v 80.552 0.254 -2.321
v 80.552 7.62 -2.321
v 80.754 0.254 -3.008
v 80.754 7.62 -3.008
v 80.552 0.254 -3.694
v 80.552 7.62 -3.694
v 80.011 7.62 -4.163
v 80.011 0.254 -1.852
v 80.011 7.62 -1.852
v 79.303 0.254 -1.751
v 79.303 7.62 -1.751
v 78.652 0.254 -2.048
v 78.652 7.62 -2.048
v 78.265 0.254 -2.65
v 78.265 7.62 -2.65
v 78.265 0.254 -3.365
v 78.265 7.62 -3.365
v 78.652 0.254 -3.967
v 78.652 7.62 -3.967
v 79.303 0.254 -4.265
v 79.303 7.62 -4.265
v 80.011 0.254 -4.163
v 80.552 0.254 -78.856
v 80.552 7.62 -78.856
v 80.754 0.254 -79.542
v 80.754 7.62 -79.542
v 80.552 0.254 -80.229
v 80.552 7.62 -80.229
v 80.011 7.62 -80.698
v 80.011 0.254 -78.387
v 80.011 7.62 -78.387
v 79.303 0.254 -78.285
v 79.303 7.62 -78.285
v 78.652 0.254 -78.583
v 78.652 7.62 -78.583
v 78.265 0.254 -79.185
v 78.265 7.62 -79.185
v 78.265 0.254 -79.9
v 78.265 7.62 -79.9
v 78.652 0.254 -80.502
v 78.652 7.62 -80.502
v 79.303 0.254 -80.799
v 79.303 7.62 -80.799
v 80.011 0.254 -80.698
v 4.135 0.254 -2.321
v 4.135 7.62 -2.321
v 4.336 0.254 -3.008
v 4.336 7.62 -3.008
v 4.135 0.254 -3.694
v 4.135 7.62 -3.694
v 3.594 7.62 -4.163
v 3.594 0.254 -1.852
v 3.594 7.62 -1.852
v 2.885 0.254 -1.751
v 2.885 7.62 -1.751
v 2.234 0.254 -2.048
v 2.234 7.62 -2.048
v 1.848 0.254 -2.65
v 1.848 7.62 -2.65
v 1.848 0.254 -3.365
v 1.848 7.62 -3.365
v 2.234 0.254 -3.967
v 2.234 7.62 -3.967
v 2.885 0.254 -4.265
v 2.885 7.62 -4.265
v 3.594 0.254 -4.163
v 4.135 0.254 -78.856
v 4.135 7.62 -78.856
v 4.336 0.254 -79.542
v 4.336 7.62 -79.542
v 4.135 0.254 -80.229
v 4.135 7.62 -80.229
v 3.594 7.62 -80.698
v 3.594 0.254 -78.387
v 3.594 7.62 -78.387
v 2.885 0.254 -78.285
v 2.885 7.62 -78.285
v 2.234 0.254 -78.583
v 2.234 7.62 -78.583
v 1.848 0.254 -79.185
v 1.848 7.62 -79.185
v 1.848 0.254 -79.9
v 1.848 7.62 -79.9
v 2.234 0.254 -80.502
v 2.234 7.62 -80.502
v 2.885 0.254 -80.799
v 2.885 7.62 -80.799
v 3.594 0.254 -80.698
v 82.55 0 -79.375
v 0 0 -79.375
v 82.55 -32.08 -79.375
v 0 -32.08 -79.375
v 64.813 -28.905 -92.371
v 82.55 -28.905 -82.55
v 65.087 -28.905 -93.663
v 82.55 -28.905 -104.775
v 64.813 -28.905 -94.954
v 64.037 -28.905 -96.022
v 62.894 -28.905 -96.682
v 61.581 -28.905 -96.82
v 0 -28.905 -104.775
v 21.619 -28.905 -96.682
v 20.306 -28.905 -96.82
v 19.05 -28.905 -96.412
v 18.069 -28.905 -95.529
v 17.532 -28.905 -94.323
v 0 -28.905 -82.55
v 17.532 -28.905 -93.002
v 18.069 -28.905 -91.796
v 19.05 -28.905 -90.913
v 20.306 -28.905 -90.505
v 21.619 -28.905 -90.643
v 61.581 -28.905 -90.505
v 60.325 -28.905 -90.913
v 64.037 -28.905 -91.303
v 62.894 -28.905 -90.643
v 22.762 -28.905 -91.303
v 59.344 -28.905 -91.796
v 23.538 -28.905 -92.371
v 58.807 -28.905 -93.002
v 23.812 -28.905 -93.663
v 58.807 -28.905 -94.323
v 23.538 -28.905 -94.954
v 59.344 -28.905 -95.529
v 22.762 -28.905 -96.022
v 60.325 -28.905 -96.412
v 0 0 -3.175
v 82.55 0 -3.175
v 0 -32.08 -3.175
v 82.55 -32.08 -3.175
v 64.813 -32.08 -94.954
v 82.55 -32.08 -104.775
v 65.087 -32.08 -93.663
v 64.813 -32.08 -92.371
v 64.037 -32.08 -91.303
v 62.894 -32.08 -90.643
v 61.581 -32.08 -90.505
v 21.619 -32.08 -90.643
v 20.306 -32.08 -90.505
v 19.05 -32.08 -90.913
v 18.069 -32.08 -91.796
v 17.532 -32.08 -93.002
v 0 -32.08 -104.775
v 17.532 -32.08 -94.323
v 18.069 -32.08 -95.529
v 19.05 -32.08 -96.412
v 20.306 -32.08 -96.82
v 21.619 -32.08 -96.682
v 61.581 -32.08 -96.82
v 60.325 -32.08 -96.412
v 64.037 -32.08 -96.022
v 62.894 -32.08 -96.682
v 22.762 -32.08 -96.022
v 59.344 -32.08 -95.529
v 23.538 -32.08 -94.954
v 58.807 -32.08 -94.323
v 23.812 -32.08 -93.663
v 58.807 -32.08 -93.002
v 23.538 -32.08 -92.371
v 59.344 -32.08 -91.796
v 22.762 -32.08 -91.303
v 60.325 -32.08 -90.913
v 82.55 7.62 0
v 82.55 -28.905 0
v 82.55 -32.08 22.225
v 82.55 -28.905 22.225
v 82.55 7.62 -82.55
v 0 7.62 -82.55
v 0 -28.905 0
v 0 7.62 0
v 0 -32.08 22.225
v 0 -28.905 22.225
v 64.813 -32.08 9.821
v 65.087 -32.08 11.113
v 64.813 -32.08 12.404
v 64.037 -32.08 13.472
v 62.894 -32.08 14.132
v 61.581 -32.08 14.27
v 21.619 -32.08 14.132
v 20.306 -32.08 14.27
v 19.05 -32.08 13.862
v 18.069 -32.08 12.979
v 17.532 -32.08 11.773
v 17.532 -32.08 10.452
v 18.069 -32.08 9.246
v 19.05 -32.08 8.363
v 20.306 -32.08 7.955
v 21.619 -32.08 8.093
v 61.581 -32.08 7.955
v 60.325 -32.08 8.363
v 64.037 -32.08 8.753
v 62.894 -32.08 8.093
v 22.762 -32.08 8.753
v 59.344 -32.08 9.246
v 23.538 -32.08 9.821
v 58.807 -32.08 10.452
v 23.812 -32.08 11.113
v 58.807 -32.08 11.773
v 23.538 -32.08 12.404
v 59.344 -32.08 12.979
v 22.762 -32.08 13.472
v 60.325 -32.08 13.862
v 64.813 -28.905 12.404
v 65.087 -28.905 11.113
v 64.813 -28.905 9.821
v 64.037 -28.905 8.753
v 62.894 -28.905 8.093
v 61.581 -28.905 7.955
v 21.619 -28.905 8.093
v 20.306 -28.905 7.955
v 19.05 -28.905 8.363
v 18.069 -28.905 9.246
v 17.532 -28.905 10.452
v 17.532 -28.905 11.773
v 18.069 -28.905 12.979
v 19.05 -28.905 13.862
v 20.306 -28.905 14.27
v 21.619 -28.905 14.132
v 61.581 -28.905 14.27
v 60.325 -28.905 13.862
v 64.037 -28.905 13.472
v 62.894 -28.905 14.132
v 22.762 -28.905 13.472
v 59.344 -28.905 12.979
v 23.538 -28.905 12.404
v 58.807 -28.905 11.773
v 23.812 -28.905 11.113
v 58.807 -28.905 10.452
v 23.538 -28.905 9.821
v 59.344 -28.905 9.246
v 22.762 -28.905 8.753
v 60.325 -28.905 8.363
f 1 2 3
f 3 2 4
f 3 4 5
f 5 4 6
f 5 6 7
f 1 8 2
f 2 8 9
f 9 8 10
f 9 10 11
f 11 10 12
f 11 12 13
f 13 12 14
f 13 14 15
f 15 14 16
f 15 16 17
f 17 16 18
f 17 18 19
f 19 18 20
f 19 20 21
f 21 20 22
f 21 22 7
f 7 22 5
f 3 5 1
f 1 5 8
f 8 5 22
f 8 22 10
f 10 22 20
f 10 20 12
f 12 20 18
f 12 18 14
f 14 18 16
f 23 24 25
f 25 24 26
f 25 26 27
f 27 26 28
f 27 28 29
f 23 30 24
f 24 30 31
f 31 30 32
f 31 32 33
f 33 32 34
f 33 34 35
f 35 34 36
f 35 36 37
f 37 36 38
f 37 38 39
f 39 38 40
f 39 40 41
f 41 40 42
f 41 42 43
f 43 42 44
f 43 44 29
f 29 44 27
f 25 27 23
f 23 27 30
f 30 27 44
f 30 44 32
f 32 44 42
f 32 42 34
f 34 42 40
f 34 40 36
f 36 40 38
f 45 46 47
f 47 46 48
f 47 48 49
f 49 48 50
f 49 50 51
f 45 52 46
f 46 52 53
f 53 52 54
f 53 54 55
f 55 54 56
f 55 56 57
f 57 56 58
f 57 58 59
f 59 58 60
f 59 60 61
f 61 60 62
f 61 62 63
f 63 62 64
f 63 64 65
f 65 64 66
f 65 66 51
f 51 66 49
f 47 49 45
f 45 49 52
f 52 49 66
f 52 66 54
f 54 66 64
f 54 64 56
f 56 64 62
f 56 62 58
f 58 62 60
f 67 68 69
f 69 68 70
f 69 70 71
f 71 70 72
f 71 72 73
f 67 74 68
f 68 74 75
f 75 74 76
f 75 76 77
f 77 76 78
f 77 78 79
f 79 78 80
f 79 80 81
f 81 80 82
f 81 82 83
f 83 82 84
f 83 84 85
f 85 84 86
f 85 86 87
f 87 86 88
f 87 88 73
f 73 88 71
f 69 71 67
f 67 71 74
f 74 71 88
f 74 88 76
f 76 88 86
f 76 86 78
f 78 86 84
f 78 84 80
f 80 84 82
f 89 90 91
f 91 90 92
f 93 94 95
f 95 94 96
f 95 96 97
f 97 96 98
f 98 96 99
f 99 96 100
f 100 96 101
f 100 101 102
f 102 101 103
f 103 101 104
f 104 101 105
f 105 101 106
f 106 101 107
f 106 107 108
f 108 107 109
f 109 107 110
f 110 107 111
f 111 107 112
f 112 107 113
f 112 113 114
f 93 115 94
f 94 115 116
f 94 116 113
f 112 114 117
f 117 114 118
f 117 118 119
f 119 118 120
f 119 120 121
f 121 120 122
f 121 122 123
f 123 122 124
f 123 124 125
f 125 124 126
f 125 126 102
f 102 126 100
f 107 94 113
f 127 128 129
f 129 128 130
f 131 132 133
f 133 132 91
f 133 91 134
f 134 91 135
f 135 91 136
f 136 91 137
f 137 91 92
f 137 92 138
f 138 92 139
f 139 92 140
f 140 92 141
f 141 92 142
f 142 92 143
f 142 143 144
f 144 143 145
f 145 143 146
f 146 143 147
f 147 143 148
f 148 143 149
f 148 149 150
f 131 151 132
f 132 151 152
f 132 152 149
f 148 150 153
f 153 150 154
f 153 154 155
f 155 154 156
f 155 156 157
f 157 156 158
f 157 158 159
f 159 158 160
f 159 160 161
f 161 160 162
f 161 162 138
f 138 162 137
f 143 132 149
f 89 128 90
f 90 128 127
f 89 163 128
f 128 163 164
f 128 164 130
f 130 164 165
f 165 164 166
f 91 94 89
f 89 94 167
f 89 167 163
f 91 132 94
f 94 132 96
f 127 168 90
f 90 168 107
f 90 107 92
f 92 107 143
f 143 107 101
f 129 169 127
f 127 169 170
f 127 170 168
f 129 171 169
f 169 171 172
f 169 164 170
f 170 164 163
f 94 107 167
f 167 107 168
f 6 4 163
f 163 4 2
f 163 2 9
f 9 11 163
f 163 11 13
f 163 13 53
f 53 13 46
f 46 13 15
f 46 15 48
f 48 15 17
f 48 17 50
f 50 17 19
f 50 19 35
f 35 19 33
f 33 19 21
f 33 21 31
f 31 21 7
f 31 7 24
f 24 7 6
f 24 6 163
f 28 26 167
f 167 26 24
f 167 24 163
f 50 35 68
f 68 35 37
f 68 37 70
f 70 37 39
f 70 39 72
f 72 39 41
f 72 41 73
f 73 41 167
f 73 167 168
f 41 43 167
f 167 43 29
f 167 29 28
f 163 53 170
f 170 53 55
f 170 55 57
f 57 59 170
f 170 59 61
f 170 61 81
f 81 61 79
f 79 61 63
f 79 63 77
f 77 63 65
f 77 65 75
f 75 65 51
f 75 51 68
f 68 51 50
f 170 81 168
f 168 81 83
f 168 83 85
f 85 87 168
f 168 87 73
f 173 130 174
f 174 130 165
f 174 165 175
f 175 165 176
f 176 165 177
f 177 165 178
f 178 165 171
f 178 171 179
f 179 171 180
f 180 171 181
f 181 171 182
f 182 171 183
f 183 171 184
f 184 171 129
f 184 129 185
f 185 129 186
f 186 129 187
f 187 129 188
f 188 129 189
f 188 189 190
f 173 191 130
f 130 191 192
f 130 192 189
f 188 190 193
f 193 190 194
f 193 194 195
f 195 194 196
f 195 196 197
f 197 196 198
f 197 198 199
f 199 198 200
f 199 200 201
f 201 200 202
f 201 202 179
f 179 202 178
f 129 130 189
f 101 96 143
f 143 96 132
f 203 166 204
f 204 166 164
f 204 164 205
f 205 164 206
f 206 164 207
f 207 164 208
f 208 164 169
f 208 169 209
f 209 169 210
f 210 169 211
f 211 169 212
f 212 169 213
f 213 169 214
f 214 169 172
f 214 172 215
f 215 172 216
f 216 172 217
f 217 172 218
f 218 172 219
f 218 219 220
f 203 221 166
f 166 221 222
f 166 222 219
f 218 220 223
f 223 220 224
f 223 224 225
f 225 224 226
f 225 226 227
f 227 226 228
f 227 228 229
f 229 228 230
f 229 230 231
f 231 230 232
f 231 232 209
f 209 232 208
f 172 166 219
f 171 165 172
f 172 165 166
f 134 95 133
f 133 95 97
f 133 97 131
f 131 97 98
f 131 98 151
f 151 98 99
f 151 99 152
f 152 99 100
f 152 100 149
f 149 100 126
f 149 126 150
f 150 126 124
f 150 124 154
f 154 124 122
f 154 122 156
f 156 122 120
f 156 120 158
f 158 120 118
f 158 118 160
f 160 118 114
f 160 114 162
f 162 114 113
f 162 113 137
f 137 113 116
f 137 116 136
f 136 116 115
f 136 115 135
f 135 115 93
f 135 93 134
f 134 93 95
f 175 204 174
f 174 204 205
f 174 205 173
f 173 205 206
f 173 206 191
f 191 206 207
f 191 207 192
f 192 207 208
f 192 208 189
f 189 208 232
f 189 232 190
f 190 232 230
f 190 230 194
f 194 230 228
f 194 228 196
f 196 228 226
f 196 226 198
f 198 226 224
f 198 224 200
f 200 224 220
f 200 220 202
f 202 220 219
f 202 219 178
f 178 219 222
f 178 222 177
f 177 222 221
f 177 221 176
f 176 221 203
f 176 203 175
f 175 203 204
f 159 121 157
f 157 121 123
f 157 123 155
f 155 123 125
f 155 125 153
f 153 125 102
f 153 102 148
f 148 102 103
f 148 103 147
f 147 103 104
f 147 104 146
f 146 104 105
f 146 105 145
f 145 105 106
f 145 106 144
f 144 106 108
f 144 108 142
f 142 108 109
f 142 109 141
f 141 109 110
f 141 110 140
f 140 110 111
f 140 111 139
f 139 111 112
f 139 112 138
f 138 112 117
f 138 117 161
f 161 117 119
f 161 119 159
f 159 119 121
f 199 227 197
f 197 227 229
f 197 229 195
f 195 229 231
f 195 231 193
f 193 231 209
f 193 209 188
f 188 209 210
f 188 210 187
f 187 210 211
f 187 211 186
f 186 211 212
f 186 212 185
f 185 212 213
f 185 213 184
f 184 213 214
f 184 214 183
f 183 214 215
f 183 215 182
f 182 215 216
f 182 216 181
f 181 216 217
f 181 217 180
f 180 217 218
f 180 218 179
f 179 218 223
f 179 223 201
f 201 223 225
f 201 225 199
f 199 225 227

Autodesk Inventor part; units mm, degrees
ref_plane "YZ Plane" through (0, 0, 0) normal (1, 0, 0) x (0, 1, 0)
ref_plane "XZ Plane" through (0, 0, 0) normal (0, 1, 0) x (-1, 0, 0)
ref_plane "XY Plane" through (0, 0, 0) normal (0, 0, 1) x (1, 0, 0)
sketch "Sketch1" plane through (0, 0, 0) normal (0, 1, 0) x (-1, 0, 0)
  line L0 (0, 0) -> (-82.55, 0)
  line L1 (-82.55, 0) -> (-82.55, -82.55)
  line L2 (-82.55, -82.55) -> (0, -82.55)
  line L3 (0, -82.55) -> (0, 0)
  dimension "d0" = 82.55
  dimension "d1" = 82.55
extrude "Extrusion1" add sketch "Sketch1" along normal blind 7.62
sketch "Sketch2" plane through (0, 0, 0) normal (0, -1, 0) x (1, 0, 0)
  line L0 (82.55, 0) -> (82.55, -82.55) projected
  line L1 (82.55, 0) -> (0, 0)
  line L2 (0, 0) -> (0, -3.175)
  line L3 (0, -3.175) -> (82.55, -3.175)
  line L4 (82.55, -3.175) -> (82.55, 0)
  line L5 (82.55, -82.55) -> (0, -82.55)
  line L6 (0, -82.55) -> (0, -79.375)
  line L7 (0, -79.375) -> (82.55, -79.375)
  line L8 (82.55, -79.375) -> (82.55, -82.55)
  dimension "d4" = 82.55
  dimension "d5" = 3.175
  dimension "d6" = 82.55
  dimension "d7" = 3.175
extrude "Extrusion2" add sketch "Sketch2" along normal blind 32.0802
sketch "Sketch3" plane through (0, 7.62, 0) normal (0, 1, 0) x (1, 0, 0)
  line L0 (0, 82.55) -> (82.55, 82.55) construction
  line L1 (0, 0) -> (82.55, 82.55) construction
  line L2 (82.55, 0) -> (0, 0) construction
  line L3 (0, 82.55) -> (82.55, 0) construction
  circle A0 centre (3.0661, 3.0077) radius 1.27
  circle A1 centre (3.0661, 79.5423) radius 1.27
  circle A2 centre (79.4839, 79.5423) radius 1.27
  circle A3 centre (79.4839, 3.0077) radius 1.27
  line L4 (3.0661, 3.0077) -> (79.4839, 79.5423) construction
  line L5 (3.0661, 79.5423) -> (79.4839, 3.0077) construction
  dimension "d14" = 2.54
  dimension "d15" = 2.54
  dimension "d16" = 2.54
  dimension "d17" = 2.54
extrude "Extrusion3" cut sketch "Sketch3" against normal blind 7.366
sketch "Sketch4" plane through (82.55, 7.62, -82.55) normal (0, 0, -1) x (-1, 0, 0)
  line L0 (0, 0) -> (0, -39.7002) projected
  line L1 (0, -39.7002) -> (82.55, -39.7002)
  line L2 (82.55, -39.7002) -> (82.55, -36.5252)
  line L3 (82.55, -36.5252) -> (0, -36.5252)
  line L4 (0, -36.5252) -> (0, -39.7002)
  point P0 (82.55, -7.62)
  dimension "d20" = 82.55
  dimension "d21" = 3.175
extrude "Extrusion4" add sketch "Sketch4" along normal blind 22.225
sketch "Sketch5" plane through (0, 7.62, 0) normal (0, 0, 1) x (1, 0, 0)
  line L0 (82.55, -39.7002) -> (0, -39.7002) projected
  line L1 (0, -39.7002) -> (82.55, -39.7002)
  line L2 (82.55, -39.7002) -> (82.55, -36.5252)
  line L3 (82.55, -36.5252) -> (0, -36.5252)
  line L4 (0, -36.5252) -> (0, -39.7002)
  point P0 (0, -7.62)
  dimension "d24" = 82.55
  dimension "d25" = 3.175
extrude "Extrusion5" add sketch "Sketch5" along normal blind 22.225
sketch "Sketch6" plane through (0, -28.9052, 0) normal (0, 1, 0) x (1, 0, 0)
  line L0 (0, 0) -> (0, -22.225) construction
  line L1 (0, -22.225) -> (0, -11.1125) construction
  line L2 (0, -11.1125) -> (20.6375, -11.1125) construction
  line L3 (20.6375, -11.1125) -> (61.9125, -11.1125) construction
  line L4 (0, 79.375) -> (0, 104.775) construction
  line L5 (0, 104.775) -> (0, 93.6625) construction
  line L6 (0, 93.6625) -> (20.6375, 93.6625) construction
  line L7 (20.6375, 93.6625) -> (61.9125, 93.6625) construction
  circle A0 centre (20.6375, -11.1125) radius 3.175
  circle A1 centre (20.6375, 93.6625) radius 3.175
  circle A2 centre (61.9125, 93.6625) radius 3.175
  circle A3 centre (61.9125, -11.1125) radius 3.175
  dimension "d28" = 11.1125
  dimension "d29" = 20.6375
  dimension "d30" = 41.275
  dimension "d31" = 11.1125
  dimension "d32" = 20.6375
  dimension "d33" = 90
  dimension "d34" = 41.275
  dimension "d35" = 180
  dimension "d36" = 6.35
  dimension "d37" = 6.35
  dimension "d38" = 6.35
  dimension "d39" = 6.35
extrude "Extrusion6" cut sketch "Sketch6" against normal blind 3.175
properties part number "TurntableBase2"
